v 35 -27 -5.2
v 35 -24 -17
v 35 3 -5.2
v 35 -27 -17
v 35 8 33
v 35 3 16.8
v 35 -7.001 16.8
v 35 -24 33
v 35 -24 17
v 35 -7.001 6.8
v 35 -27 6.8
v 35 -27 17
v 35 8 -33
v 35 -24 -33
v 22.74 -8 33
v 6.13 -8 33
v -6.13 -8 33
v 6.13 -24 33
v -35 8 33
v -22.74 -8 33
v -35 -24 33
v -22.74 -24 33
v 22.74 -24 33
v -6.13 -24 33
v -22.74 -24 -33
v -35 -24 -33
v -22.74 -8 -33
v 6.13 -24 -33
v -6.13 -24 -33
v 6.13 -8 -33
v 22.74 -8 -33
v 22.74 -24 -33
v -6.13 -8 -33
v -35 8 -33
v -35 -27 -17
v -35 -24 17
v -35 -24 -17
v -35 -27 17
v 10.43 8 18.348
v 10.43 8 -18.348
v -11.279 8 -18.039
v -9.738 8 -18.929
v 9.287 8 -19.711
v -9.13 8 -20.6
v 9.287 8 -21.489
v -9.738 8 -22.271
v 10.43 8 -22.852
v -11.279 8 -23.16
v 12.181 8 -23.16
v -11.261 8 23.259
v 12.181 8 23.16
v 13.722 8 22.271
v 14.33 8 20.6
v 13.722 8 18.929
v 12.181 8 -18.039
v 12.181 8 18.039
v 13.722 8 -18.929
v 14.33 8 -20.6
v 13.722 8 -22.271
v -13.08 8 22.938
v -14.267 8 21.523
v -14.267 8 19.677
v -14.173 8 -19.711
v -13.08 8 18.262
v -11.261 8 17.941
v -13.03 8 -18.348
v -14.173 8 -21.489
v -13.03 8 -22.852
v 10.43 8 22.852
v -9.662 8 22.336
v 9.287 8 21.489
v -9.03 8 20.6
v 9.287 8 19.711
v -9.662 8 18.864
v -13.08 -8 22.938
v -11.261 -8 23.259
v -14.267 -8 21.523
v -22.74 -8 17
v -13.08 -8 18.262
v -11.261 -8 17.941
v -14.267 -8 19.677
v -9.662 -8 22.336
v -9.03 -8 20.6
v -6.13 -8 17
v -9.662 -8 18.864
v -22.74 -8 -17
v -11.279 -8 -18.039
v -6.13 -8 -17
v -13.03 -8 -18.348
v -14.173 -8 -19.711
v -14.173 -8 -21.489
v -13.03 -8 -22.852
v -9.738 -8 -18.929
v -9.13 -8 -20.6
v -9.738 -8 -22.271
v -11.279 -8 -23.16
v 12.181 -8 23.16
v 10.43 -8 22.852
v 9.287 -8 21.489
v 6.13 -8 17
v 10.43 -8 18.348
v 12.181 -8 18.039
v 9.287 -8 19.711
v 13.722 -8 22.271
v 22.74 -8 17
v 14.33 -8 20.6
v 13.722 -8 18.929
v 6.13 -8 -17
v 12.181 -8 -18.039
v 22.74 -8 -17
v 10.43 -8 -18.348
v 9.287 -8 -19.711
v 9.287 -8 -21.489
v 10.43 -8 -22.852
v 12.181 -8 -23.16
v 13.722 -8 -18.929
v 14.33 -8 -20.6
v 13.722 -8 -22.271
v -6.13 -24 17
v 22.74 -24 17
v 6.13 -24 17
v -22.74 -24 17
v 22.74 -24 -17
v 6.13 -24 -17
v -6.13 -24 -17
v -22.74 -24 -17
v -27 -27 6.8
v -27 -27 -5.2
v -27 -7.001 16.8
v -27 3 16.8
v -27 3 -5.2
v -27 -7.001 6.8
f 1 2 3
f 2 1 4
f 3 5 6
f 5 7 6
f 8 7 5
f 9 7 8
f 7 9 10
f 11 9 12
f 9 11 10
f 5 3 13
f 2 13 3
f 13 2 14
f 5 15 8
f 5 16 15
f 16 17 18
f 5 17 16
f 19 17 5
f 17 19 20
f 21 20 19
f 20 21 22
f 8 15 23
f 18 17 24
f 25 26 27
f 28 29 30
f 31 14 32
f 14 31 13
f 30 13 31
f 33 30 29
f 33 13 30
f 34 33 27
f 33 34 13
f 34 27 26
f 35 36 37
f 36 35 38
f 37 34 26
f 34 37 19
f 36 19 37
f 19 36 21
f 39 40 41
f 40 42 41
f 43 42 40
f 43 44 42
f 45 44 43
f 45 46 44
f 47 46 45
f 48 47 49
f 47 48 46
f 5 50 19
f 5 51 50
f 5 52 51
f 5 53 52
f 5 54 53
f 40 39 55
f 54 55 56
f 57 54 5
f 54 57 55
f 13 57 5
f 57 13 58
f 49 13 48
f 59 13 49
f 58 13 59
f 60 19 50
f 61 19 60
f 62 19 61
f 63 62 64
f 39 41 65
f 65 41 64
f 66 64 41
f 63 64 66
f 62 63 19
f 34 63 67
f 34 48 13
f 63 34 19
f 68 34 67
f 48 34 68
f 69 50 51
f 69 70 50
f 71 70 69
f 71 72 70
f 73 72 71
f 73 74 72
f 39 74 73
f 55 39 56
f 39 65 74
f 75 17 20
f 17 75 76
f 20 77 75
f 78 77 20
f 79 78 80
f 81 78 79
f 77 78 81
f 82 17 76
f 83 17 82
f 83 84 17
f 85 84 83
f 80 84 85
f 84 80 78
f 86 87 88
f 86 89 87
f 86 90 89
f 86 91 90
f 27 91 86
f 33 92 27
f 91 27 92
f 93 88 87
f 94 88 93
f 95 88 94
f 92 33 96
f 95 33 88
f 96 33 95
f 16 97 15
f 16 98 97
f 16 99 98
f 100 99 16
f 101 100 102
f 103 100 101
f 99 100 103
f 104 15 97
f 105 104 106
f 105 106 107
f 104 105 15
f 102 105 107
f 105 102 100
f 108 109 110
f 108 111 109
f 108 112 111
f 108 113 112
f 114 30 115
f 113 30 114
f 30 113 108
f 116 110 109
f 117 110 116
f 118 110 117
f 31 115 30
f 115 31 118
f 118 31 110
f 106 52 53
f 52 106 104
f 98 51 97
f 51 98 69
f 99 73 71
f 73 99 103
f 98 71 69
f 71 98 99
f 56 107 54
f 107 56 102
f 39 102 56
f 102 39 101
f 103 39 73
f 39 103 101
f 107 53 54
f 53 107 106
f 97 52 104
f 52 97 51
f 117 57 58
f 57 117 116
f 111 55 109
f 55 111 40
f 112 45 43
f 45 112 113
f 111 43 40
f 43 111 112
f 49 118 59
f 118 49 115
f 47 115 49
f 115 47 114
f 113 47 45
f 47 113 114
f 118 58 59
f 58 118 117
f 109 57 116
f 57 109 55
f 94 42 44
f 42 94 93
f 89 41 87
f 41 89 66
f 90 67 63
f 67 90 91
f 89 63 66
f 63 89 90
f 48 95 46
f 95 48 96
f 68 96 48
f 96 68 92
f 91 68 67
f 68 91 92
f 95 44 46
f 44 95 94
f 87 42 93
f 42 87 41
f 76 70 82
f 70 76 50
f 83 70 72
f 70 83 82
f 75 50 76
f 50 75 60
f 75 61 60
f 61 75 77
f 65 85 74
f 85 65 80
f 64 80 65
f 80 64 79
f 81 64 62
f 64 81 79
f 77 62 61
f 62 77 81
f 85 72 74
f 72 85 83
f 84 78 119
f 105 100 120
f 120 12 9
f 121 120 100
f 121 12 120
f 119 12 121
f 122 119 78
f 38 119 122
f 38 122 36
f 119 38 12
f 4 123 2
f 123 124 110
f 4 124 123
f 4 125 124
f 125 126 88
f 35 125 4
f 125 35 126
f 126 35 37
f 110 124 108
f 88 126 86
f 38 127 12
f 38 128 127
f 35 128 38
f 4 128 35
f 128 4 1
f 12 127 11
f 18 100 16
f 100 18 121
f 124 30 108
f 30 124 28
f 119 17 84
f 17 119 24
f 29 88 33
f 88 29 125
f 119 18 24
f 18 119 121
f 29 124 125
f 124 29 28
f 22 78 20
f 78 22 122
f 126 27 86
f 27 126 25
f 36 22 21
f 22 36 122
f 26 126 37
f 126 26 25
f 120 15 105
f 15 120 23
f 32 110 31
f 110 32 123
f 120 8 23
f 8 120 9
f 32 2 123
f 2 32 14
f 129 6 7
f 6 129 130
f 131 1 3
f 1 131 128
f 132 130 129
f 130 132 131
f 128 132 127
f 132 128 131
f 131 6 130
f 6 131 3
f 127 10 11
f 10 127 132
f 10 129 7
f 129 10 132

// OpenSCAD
bias = 0.2;
screw_bias = 0.15;

module base() {
    screw_r = 2.4 + bias;
    screw_x = (28.26 - 4.8) / 2;
    screw_z = (46 - 4.8) / 2;
    
    
    difference() {
        cube([70, 16, 66], center = true);
        
        translate([screw_x, 0, screw_z])
            rotate([90, 0, 0])
            cylinder(h = 16 + 0.002, r=2.4 + bias, center = true);
        
        translate([screw_x, 0, -screw_z])
            rotate([90, 0, 0])
            cylinder(h = 16 + 0.002, r=2.4 + bias, center = true);
        
        translate([-screw_x, 0, -screw_z])
            rotate([90, 0, 0])
            cylinder(h = 16 + 0.002, r=2.4 + bias, center = true);
        
        translate([-screw_x, 0, screw_z])
            rotate([90, 0, 0])
            cylinder(h = 16 + 0.002, r=2.5 + bias, center = true);
    };
    
    translate([-35, -27, -17])
        cube([70, 35, 34]);
    
    translate([0, -16, 0])
        cube([12.26, 16, 66], center = true);
    
    translate([-28.87, -16, 0])
        cube([12.26, 16, 66], center = true);
    
    translate([28.87, -16, 0])
        cube([12.26, 16, 66], center = true);
    
}

module case() {
    difference () {
    cube([62 + 0.001, 30 + 0.001, 22]);
        
    translate([0 - 0.001, 0, 12])
        cube([62 + 0.002, 20, 10]);
    };
}


difference() {
    base();
    
    translate([-27, -27.001, -5.2])
        case();
}
